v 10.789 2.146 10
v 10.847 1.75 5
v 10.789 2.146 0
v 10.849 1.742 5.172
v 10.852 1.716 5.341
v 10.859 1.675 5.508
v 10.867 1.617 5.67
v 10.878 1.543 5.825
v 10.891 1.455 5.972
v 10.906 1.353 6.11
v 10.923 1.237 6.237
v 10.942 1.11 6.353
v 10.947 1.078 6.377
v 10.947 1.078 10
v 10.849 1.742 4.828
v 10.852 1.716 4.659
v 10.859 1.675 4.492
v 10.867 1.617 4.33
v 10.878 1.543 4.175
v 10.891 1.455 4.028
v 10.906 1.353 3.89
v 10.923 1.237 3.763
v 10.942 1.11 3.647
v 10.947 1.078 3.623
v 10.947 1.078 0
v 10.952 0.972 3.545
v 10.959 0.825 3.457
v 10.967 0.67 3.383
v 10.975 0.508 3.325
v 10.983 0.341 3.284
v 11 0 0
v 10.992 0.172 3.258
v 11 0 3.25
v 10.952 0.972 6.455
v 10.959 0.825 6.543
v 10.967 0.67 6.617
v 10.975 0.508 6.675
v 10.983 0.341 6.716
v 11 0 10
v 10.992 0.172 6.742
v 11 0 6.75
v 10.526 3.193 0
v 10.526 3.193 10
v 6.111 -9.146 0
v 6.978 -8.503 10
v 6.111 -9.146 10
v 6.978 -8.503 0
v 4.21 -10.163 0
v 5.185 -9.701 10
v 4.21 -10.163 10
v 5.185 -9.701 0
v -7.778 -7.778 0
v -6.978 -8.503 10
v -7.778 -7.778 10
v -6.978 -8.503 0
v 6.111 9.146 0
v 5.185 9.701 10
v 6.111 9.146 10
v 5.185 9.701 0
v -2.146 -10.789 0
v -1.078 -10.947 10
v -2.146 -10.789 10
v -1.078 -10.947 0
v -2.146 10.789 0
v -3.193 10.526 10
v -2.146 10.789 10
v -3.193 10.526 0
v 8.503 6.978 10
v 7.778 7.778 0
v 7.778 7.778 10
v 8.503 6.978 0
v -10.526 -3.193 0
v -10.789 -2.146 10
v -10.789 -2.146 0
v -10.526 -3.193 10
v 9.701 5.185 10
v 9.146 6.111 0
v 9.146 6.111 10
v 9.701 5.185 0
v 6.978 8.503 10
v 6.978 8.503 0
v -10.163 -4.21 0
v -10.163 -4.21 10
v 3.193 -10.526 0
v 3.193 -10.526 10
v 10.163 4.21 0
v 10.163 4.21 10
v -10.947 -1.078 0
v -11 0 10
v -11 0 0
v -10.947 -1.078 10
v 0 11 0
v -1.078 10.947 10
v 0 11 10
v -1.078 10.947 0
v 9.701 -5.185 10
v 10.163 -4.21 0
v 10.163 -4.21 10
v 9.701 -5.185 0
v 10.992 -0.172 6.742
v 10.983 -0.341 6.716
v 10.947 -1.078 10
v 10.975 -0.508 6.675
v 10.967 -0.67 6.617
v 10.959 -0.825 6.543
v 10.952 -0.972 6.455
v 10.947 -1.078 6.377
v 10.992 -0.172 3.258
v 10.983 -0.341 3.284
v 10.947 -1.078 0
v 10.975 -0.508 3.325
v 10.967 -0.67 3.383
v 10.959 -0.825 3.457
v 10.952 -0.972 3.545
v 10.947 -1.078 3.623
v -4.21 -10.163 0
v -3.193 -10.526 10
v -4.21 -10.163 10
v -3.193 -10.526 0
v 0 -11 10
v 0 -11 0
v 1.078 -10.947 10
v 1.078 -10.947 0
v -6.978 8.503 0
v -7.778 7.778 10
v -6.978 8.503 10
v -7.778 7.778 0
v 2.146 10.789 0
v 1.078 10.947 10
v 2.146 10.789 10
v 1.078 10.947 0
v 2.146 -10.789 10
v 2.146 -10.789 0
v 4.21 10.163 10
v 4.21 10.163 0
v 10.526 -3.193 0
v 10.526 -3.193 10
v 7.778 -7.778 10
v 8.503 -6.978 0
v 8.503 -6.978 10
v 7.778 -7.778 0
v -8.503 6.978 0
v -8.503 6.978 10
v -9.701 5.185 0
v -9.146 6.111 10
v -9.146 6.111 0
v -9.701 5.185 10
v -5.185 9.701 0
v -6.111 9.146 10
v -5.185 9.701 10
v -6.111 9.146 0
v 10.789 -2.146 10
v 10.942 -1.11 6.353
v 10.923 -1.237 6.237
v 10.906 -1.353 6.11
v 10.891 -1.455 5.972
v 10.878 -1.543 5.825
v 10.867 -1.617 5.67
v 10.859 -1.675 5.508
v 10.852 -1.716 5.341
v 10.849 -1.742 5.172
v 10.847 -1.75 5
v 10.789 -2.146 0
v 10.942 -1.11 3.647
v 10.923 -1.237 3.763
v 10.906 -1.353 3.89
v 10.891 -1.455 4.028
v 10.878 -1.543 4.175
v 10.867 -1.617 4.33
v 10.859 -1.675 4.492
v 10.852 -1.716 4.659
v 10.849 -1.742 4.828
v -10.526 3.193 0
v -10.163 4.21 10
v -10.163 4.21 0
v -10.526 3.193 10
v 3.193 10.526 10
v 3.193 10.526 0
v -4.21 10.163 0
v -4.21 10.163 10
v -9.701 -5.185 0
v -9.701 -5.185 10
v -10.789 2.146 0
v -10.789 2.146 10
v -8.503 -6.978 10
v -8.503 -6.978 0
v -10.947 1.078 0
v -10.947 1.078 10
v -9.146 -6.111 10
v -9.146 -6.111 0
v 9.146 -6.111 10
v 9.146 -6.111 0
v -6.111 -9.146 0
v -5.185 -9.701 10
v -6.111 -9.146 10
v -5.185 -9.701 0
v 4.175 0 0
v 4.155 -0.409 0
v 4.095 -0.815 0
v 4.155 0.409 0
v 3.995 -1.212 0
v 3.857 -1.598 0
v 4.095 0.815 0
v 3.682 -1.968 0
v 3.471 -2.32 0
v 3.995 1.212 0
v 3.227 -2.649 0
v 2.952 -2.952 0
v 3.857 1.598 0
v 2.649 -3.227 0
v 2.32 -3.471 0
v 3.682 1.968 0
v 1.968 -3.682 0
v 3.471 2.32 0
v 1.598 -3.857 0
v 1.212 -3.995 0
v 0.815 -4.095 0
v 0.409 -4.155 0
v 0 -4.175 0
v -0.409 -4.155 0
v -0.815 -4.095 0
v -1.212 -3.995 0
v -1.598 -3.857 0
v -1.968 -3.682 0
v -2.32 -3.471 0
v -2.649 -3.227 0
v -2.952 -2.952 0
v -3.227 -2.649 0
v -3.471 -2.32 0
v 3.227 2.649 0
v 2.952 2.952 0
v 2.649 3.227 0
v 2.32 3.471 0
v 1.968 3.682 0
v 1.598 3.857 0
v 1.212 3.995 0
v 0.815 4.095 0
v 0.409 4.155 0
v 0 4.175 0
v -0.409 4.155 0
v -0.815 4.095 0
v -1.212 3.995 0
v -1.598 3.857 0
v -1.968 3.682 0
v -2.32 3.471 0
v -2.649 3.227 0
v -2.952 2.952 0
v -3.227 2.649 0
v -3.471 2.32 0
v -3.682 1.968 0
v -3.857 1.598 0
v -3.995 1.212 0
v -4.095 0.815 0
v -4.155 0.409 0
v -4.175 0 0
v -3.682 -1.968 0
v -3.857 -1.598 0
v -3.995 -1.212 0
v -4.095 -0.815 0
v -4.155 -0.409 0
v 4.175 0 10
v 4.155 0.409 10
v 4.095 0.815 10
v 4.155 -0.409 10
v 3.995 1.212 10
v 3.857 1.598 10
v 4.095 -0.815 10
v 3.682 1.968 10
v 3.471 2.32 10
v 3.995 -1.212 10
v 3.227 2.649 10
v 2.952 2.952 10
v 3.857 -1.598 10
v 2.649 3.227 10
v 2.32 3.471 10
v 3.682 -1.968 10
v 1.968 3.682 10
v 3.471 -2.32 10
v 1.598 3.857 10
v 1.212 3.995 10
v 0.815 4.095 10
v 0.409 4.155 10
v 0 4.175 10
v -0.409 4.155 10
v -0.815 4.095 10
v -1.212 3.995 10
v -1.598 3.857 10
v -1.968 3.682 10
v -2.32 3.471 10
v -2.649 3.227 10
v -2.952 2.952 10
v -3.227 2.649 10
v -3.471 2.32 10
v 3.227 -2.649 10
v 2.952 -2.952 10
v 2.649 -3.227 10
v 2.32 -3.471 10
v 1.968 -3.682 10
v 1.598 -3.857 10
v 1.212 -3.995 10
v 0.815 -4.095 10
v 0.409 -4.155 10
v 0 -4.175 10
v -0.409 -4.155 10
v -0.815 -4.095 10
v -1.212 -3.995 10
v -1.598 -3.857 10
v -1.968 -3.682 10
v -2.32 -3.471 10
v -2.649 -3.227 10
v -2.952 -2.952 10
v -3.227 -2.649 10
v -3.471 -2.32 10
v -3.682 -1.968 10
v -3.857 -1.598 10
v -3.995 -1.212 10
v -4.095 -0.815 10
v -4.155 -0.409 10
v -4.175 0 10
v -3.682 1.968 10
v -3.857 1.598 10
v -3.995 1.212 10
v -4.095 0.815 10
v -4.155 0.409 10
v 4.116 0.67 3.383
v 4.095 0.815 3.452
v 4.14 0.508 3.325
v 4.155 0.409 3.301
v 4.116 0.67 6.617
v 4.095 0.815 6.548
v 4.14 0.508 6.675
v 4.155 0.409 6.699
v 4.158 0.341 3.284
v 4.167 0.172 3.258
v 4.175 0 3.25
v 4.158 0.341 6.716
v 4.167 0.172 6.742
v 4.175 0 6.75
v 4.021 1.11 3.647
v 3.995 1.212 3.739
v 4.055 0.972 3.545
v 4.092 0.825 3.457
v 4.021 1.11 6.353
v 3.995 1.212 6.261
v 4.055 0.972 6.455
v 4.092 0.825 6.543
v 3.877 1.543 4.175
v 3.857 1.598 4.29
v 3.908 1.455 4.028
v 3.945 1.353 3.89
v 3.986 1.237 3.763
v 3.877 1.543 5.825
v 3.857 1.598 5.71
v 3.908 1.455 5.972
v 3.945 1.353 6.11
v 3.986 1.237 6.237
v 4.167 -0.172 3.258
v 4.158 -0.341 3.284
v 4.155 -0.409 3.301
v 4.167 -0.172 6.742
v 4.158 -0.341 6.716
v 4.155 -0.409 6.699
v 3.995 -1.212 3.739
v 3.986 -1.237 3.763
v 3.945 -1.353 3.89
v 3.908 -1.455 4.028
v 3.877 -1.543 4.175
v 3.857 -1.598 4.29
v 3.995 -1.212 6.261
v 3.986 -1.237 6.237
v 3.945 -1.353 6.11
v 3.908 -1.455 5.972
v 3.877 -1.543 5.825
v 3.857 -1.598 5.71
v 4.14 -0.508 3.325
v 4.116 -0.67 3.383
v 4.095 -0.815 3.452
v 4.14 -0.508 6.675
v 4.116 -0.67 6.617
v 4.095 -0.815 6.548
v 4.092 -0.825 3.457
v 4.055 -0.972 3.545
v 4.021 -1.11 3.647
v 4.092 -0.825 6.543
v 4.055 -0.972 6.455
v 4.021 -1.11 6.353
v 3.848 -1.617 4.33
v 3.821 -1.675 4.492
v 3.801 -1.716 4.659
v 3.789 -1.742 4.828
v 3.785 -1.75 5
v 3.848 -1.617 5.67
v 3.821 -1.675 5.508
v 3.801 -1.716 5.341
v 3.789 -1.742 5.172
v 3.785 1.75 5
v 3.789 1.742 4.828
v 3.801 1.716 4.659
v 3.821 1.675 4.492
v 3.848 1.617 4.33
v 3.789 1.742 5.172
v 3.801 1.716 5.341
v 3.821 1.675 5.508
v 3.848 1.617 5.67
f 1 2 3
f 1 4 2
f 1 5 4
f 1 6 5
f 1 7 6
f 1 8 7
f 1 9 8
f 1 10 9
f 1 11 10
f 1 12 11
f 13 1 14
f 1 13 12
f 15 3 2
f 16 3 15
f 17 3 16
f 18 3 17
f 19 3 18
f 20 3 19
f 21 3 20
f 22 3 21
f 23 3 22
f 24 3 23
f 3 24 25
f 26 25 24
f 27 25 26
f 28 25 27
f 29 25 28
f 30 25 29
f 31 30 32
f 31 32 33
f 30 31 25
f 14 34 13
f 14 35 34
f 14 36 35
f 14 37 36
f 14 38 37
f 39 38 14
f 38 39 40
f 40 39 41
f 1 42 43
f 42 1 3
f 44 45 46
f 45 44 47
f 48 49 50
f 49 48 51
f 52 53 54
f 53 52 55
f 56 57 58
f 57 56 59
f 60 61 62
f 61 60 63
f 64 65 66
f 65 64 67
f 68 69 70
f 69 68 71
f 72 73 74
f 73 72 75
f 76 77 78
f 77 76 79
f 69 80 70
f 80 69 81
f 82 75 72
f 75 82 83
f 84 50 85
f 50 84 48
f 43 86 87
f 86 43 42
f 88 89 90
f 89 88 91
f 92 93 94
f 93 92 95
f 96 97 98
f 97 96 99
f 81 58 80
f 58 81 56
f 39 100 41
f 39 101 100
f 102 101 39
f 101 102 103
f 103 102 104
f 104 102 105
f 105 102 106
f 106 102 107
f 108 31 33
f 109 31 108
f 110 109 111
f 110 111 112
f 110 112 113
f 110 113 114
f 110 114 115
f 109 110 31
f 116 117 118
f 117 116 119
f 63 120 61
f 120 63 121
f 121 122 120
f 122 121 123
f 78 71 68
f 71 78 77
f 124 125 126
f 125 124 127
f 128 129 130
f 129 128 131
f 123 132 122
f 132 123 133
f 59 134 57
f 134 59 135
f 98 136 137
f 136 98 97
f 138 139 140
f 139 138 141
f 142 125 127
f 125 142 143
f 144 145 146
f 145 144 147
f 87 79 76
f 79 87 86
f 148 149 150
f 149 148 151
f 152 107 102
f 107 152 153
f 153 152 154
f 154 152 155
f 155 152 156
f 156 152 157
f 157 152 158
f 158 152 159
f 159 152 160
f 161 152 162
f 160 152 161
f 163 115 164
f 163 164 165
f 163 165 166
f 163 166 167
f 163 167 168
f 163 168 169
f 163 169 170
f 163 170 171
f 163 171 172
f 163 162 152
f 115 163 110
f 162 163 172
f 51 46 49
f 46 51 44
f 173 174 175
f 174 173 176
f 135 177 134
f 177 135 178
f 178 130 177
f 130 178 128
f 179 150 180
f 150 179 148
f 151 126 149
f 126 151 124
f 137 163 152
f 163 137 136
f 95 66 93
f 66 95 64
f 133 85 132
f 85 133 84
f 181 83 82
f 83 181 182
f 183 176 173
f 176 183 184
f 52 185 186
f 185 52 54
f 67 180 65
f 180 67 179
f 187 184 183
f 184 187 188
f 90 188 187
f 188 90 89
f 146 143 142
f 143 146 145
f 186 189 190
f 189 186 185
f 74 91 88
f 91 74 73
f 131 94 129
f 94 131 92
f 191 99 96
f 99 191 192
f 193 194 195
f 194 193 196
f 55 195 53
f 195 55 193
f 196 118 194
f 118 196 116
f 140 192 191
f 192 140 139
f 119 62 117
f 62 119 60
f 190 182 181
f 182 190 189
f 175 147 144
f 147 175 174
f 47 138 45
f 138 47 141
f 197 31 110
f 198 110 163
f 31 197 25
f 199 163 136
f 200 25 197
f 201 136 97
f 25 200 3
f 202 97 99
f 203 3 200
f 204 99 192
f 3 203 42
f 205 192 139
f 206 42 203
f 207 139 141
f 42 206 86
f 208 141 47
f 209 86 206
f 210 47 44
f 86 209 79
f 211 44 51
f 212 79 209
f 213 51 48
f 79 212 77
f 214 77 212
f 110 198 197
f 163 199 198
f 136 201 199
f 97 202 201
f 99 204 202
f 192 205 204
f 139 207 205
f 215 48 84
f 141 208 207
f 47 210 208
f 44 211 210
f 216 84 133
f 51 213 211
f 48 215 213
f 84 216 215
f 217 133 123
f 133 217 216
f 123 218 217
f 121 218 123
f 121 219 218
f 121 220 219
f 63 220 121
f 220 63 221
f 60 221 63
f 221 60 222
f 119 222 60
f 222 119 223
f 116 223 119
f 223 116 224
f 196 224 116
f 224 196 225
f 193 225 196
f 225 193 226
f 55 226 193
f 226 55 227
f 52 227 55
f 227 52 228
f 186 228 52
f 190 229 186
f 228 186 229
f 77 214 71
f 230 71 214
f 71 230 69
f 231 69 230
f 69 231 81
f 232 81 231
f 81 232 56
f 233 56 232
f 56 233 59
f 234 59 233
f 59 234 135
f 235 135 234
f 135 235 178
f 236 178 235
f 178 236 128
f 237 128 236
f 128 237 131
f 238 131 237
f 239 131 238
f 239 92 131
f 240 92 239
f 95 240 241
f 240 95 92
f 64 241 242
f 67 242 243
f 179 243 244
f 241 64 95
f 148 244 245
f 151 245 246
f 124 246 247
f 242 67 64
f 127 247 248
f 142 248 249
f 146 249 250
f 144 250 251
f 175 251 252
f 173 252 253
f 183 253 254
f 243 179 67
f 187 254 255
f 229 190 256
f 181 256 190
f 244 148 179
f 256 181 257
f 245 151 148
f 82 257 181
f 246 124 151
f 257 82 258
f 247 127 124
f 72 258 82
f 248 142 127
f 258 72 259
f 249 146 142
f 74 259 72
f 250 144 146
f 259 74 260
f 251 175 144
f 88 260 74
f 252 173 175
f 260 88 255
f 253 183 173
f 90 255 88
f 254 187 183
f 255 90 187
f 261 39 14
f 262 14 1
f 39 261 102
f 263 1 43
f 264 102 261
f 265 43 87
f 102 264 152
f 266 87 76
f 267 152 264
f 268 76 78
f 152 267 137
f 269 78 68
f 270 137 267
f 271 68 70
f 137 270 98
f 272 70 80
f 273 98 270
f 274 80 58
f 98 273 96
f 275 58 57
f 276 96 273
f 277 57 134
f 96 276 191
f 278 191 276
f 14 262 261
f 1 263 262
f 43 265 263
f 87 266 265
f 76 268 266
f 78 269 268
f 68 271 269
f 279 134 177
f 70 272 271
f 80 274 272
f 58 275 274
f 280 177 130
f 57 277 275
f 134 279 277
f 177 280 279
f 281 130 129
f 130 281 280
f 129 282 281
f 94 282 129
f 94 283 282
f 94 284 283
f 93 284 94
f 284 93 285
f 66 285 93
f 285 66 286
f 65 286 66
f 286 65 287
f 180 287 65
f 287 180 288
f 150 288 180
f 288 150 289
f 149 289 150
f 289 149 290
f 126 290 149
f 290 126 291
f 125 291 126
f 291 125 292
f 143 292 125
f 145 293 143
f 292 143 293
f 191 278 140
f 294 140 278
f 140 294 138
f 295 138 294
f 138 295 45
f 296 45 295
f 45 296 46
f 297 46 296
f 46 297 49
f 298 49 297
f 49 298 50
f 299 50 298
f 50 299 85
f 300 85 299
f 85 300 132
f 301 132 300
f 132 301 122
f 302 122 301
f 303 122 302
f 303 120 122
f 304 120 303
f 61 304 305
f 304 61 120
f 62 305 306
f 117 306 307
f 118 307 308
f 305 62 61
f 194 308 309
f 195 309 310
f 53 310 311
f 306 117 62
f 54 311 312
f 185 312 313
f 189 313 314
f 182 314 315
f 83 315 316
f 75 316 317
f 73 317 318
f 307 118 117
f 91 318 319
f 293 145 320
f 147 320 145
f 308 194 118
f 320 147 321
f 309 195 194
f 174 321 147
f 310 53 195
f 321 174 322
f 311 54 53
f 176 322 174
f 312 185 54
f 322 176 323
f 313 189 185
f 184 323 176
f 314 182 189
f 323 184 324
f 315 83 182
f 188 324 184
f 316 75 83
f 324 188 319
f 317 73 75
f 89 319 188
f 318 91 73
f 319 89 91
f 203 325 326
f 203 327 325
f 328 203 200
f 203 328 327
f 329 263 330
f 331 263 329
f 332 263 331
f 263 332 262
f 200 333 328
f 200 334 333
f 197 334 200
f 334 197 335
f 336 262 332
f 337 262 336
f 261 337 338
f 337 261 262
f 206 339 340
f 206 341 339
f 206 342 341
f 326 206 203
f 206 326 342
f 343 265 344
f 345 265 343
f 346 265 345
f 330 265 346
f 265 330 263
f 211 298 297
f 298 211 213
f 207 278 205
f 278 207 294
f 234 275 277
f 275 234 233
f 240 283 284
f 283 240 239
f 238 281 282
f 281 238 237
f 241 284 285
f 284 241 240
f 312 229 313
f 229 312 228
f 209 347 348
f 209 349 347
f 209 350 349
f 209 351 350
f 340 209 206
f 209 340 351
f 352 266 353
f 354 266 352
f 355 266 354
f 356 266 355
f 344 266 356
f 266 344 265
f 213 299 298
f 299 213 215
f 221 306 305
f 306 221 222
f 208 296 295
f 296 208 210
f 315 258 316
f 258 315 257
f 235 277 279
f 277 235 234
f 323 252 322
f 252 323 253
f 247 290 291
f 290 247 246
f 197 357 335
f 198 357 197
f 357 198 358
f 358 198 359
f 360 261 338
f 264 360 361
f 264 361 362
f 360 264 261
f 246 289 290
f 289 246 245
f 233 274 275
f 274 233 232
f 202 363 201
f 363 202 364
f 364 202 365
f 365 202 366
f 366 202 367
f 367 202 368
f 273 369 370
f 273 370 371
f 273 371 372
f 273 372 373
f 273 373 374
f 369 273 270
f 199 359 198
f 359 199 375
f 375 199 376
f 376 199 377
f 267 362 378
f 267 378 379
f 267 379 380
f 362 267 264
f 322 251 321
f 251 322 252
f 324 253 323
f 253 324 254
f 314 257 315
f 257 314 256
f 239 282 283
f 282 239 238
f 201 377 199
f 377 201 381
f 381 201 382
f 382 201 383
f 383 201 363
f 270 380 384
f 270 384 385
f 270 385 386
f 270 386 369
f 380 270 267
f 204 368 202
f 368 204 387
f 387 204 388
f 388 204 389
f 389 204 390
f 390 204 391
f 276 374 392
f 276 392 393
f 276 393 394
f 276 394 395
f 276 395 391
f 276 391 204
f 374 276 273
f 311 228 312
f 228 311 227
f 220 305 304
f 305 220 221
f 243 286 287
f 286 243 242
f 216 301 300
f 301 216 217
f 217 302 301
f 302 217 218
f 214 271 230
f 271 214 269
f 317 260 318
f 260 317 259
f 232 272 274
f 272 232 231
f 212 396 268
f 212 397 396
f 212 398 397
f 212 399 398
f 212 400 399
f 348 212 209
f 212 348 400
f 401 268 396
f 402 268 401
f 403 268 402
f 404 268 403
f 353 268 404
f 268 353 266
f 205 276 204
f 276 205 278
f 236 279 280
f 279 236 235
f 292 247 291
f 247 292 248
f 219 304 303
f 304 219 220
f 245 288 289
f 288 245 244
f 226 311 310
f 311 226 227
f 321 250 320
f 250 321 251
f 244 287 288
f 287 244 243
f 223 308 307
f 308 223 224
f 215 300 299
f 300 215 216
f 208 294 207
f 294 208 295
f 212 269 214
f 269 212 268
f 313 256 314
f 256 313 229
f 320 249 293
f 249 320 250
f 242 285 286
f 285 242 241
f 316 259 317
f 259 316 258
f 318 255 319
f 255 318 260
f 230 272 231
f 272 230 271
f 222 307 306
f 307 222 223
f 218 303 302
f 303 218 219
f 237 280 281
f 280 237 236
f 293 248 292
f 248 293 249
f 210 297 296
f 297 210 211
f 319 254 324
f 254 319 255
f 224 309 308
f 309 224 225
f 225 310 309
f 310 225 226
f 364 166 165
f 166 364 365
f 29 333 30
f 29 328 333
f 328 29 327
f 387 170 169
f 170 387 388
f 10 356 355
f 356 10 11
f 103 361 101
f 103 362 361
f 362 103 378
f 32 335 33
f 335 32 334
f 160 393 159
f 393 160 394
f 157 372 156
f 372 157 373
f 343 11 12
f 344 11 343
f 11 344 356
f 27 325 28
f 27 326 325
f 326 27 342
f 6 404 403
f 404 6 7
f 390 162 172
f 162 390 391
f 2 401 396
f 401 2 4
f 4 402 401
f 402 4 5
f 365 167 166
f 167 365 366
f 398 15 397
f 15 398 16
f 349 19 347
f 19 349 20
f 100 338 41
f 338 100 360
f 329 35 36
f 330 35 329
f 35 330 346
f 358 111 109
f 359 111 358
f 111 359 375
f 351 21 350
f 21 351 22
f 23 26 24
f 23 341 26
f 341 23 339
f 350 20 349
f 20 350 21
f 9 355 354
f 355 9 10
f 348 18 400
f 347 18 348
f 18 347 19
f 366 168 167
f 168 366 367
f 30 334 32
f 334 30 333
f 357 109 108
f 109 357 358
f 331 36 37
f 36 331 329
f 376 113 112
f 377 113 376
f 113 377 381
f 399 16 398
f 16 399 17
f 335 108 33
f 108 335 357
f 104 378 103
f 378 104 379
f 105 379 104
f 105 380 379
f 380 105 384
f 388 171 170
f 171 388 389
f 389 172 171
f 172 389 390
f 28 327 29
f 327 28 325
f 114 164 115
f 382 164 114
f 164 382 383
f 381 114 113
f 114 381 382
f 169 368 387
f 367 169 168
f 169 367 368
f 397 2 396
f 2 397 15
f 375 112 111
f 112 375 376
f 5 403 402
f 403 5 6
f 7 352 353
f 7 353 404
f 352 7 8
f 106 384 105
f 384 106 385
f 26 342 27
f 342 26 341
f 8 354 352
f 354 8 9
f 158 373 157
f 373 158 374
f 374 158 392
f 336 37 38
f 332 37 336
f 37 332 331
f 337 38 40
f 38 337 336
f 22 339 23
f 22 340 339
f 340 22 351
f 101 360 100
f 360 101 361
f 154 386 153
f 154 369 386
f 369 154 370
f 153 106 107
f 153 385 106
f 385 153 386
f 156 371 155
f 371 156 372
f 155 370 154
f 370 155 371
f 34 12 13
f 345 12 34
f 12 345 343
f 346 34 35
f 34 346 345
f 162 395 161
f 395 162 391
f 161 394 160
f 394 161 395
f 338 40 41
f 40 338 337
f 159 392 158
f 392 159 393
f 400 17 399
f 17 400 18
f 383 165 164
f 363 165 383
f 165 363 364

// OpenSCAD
// file: parameters.scad
// =============================================================================
// Gen-AV Vernier flux-claw hyper - WOUND-AWARE (HARD GATE)
// Dual-rotor vernier: Rotor B +22.5 deg vs 12-slot stator; O5 flux claws
// =============================================================================

wire_awg            = 26;
wire_od             = 0.45;
turns               = 205;      // +5 vs Gen-AS 200
fill                = 0.70;
layers_per_face     = 2;
wind_build_axial    = layers_per_face * wire_od * fill;   // 0.63 mm
wind_build_radial   = 3 * wire_od * fill;                 // 0.945 mm

coil_id_r           = 15.0;
coil_od_r           = 62.0;
span_deg            = 25.0;
former_web          = 1.22;     // thinner vs AS 1.25
flange_t            = 0.60;
wall                = 1.2;
slot_w              = 2.4;
mount_hole          = 3.5;
tab_len             = 7.0;

former_bare_h       = former_web + 2 * flange_t;            // 2.42 mm
coil_envelope_h     = former_bare_h + 2 * wind_build_axial; // 3.68 mm

run_clear           = 0.50;
gap_spacer_h        = run_clear + wind_build_axial;         // 1.13 mm
m2m                 = coil_envelope_h + 2 * run_clear;      // 4.68 mm

coil_stations       = 12;
bay_r_in            = coil_id_r - 2.0 - wind_build_radial;
bay_r_out           = coil_od_r + 2.0 + wind_build_radial;
bay_span            = span_deg + 4.0;
bay_offset          = 2.0;
stator_thick        = former_bare_h;
stator_od           = 160.0;
shaft_clear_stator  = 34.0;
coil_mount_r        = 25.5;

large_pocket_d      = 20.3;
small_pocket_d      = 5.3;
pocket_h            = 5.2;
large_n             = 8;
R_large             = 38.5;     // closer to copper centroid vs AS R=39.0
R_small_inner       = 24.5;
R_small_mid         = 38.5;
R_small_outer       = 54.5;
carrier_od          = 156.0;
carrier_thick       = 7.5;
hub_h               = 10.0;
hub_od              = 30.0;
rotor_b_offset_deg  = 22.5;     // vernier offset vs 12-slot stator

shaft_bore          = 8.35;
bearing_d           = 21.85;
bearing_h           = 7.2;
m3_clear            = 3.5;
bolt_r_inner        = 36.0;
bolt_n_inner        = 6;
flange_bolt_r       = 72.0;
flange_bolt_n       = 6;
brace_r             = 68.0;
brace_d             = 4.3;
brace_n             = 4;

spacer_pad_od       = 14.0;
spacer_pad_id       = m3_clear;
endbell_od          = 160.0;
endbell_thick       = 8.0;
endbell_shaft_clear = 10.0;

$fn = 64;
// main file
// Gen-AV shaft collar — print ×2–4
include <parameters.scad>;
$fn = 64;
od = 22; id = shaft_bore; h = 10; set_d = 3.5;
difference() {
    cylinder(d=od, h=h);
    translate([0, 0, -0.1]) cylinder(d=id, h=h + 0.2);
    translate([0, 0, h/2]) rotate([0, 90, 0]) cylinder(d=set_d, h=od);
}
